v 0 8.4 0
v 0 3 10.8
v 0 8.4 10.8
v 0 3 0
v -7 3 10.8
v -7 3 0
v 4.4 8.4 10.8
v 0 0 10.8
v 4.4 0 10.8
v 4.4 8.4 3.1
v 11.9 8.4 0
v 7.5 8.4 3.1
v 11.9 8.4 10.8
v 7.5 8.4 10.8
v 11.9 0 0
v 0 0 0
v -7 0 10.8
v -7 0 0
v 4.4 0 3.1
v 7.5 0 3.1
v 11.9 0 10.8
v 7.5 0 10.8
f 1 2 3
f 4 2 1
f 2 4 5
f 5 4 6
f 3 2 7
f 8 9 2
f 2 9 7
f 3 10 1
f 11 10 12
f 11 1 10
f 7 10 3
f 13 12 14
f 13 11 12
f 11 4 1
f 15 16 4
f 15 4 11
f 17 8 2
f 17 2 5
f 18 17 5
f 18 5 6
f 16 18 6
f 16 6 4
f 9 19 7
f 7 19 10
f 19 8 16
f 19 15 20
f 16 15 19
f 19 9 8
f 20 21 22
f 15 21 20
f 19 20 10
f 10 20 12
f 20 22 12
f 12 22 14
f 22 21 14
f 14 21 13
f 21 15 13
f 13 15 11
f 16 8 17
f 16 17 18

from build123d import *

# Parameters (mm, degrees)
PAD001_DEPTH = 8.4
SKETCH001_W  = 7
SKETCH001_H  = 10.8
PAD_DEPTH    = 3


with BuildPart() as part:
    # Sketch → Pad001 (new body)
    with BuildSketch(Plane.XZ):
        Polygon((0, 0), (0, 10.8), (4.4, 10.8), (4.4, 3.1), (7.5, 3.1), (7.5, 10.8), (11.9, 10.8), (11.9, 0), align=None)
    extrude(amount=-PAD001_DEPTH)

    # Sketch001 → Pad (join)
    with BuildSketch(Plane.XZ):
        with Locations((-3.5, 5.4)):
            Rectangle(SKETCH001_W, SKETCH001_H)
    extrude(amount=-PAD_DEPTH)


solid = part.part
